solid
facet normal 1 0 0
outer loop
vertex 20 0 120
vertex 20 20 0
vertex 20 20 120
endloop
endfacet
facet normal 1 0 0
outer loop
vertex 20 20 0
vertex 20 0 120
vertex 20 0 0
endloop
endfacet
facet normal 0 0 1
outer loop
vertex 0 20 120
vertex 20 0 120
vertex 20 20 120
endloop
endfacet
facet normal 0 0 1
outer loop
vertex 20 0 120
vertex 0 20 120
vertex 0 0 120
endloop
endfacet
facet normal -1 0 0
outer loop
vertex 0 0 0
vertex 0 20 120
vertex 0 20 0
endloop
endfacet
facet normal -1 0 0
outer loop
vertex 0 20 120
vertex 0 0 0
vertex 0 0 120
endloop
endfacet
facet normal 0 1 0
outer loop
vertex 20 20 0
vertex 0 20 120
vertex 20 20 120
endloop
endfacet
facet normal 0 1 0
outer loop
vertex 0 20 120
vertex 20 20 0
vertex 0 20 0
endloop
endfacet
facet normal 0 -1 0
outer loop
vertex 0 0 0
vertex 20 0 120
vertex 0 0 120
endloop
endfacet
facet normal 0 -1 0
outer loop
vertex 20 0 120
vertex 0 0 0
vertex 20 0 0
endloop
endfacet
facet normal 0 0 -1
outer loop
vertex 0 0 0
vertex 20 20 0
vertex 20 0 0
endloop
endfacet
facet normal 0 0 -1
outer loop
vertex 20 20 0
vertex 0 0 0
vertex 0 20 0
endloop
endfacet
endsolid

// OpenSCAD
// Define the size of each cube
cube_size = 20; // Length of each edge of the cube

// Create the vertical stack of cubes
module flexible_coupling() {
    // Layer 1: cube_1
    translate([0, 0, cube_size * 5]) // Position at the topmost layer
    cube([cube_size, cube_size, cube_size]);

    // Layer 2: cube_2
    translate([0, 0, cube_size * 4]) // Position directly below cube_1
    cube([cube_size, cube_size, cube_size]);

    // Layer 3: cube_3
    translate([0, 0, cube_size * 3]) // Position directly below cube_2
    cube([cube_size, cube_size, cube_size]);

    // Layer 4: cube_4
    translate([0, 0, cube_size * 2]) // Position directly below cube_3
    cube([cube_size, cube_size, cube_size]);

    // Layer 5: cube_5
    translate([0, 0, cube_size * 1]) // Position directly below cube_4
    cube([cube_size, cube_size, cube_size]);

    // Layer 6: cube_6
    translate([0, 0, cube_size * 0]) // Position at the bottommost layer
    cube([cube_size, cube_size, cube_size]);
}

// Render the flexible coupling
flexible_coupling();
